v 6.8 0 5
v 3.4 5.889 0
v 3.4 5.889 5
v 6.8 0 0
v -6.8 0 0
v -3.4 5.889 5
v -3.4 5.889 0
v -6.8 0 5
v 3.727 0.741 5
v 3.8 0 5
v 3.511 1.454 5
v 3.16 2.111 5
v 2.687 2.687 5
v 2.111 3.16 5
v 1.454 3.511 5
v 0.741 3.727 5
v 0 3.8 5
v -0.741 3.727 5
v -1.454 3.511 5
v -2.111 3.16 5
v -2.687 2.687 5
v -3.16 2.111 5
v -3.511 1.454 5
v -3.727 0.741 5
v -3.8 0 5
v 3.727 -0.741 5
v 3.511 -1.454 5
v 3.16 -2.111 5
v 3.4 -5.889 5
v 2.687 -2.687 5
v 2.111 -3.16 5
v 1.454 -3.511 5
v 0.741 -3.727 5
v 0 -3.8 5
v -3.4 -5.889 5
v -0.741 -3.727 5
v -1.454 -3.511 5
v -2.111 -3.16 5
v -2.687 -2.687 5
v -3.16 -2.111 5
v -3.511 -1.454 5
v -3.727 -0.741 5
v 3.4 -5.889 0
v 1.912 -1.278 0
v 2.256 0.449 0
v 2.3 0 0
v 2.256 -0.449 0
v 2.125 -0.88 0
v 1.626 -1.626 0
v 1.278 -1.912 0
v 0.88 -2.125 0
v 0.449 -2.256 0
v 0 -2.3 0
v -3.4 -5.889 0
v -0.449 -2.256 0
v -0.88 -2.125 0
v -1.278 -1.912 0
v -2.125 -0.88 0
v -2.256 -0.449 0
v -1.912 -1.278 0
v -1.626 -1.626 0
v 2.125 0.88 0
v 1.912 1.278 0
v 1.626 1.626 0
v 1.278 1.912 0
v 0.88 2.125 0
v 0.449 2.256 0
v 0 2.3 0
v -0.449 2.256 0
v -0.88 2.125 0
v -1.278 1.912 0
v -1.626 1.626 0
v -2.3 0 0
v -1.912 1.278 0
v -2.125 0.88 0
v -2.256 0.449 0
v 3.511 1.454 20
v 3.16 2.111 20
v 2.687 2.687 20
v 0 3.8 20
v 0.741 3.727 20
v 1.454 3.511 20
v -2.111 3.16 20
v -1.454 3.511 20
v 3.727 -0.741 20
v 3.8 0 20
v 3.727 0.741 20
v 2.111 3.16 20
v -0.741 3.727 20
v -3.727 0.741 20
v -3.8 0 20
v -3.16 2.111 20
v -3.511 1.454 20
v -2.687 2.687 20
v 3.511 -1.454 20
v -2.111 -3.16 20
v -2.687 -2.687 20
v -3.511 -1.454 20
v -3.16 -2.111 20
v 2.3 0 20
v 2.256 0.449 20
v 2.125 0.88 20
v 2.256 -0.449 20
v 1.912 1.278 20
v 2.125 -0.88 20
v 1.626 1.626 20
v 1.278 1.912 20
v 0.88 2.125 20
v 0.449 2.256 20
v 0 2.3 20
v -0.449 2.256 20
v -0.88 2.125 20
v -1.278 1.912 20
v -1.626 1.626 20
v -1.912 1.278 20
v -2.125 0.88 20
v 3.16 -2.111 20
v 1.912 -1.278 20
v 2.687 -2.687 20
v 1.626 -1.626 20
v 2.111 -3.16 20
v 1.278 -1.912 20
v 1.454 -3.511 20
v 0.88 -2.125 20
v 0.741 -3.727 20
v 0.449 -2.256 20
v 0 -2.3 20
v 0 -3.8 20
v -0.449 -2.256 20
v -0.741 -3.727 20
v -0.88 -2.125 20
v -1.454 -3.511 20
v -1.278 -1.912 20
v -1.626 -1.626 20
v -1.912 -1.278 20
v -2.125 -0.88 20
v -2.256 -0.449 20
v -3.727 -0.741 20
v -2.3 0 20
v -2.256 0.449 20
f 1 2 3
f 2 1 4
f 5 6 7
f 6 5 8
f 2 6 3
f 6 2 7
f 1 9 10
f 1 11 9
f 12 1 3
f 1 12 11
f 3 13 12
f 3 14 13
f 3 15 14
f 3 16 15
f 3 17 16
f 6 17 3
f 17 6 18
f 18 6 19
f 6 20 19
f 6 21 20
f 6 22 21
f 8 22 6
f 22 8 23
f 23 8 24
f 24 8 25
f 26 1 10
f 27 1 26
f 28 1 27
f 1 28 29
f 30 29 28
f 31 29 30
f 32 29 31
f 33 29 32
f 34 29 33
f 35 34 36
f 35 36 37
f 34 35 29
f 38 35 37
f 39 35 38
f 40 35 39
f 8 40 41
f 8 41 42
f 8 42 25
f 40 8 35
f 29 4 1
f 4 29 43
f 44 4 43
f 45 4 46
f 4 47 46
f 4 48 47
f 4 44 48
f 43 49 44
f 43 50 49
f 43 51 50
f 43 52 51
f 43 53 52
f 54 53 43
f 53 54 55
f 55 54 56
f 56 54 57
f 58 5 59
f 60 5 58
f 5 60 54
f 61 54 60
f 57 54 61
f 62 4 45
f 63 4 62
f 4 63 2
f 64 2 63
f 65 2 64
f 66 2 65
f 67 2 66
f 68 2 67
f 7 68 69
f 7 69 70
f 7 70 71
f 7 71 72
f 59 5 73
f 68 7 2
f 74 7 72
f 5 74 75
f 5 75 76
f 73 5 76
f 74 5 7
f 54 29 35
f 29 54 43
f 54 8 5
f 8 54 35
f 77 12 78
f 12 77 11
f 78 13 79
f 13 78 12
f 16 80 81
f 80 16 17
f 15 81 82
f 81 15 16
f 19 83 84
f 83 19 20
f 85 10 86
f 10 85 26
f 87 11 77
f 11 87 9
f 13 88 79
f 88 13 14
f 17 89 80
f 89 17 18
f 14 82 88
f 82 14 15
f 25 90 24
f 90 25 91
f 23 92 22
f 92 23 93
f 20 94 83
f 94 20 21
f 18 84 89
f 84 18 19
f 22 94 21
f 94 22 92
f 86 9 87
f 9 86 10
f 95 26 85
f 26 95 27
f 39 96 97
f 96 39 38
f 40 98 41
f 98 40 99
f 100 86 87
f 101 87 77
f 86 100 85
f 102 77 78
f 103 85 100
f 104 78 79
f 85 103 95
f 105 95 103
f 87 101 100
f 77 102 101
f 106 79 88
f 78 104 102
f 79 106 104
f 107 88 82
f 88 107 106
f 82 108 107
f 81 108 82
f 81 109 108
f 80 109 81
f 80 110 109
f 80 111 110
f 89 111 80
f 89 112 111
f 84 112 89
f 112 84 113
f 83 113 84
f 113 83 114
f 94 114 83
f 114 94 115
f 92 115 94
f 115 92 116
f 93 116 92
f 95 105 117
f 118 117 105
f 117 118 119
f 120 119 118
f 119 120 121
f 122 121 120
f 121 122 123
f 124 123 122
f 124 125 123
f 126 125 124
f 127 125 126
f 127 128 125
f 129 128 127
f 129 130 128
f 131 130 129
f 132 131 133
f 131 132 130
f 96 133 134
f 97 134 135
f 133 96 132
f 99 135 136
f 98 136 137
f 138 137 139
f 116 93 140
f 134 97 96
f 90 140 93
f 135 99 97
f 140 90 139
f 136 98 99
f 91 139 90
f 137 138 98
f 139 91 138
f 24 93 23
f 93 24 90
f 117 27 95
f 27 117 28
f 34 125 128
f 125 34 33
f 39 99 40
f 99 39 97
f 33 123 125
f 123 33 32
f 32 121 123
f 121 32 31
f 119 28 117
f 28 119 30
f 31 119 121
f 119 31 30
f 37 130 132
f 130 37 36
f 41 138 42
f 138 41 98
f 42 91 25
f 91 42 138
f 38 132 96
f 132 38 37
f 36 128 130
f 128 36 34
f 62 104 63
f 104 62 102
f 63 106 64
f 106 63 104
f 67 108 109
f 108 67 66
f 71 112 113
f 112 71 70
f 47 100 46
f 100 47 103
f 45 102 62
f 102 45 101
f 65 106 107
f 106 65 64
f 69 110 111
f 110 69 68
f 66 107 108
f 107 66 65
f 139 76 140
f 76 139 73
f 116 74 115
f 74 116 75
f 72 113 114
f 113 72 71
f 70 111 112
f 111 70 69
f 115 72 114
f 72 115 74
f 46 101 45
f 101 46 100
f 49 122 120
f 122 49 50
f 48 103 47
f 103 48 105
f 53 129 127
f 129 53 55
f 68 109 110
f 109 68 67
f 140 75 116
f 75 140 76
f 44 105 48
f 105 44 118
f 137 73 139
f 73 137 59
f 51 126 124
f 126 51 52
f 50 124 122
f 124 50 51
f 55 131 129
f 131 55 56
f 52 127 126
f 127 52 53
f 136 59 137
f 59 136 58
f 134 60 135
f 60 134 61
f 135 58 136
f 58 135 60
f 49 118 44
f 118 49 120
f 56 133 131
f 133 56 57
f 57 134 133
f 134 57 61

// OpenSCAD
 
difference() {
    union() {
        cylinder($fn=6, d=13.6, h=5);
        translate([0,0,5]) cylinder($fn=32, d=7.6, h=15);
    }
    cylinder($fn=32, d=4.6, h=20);
}
